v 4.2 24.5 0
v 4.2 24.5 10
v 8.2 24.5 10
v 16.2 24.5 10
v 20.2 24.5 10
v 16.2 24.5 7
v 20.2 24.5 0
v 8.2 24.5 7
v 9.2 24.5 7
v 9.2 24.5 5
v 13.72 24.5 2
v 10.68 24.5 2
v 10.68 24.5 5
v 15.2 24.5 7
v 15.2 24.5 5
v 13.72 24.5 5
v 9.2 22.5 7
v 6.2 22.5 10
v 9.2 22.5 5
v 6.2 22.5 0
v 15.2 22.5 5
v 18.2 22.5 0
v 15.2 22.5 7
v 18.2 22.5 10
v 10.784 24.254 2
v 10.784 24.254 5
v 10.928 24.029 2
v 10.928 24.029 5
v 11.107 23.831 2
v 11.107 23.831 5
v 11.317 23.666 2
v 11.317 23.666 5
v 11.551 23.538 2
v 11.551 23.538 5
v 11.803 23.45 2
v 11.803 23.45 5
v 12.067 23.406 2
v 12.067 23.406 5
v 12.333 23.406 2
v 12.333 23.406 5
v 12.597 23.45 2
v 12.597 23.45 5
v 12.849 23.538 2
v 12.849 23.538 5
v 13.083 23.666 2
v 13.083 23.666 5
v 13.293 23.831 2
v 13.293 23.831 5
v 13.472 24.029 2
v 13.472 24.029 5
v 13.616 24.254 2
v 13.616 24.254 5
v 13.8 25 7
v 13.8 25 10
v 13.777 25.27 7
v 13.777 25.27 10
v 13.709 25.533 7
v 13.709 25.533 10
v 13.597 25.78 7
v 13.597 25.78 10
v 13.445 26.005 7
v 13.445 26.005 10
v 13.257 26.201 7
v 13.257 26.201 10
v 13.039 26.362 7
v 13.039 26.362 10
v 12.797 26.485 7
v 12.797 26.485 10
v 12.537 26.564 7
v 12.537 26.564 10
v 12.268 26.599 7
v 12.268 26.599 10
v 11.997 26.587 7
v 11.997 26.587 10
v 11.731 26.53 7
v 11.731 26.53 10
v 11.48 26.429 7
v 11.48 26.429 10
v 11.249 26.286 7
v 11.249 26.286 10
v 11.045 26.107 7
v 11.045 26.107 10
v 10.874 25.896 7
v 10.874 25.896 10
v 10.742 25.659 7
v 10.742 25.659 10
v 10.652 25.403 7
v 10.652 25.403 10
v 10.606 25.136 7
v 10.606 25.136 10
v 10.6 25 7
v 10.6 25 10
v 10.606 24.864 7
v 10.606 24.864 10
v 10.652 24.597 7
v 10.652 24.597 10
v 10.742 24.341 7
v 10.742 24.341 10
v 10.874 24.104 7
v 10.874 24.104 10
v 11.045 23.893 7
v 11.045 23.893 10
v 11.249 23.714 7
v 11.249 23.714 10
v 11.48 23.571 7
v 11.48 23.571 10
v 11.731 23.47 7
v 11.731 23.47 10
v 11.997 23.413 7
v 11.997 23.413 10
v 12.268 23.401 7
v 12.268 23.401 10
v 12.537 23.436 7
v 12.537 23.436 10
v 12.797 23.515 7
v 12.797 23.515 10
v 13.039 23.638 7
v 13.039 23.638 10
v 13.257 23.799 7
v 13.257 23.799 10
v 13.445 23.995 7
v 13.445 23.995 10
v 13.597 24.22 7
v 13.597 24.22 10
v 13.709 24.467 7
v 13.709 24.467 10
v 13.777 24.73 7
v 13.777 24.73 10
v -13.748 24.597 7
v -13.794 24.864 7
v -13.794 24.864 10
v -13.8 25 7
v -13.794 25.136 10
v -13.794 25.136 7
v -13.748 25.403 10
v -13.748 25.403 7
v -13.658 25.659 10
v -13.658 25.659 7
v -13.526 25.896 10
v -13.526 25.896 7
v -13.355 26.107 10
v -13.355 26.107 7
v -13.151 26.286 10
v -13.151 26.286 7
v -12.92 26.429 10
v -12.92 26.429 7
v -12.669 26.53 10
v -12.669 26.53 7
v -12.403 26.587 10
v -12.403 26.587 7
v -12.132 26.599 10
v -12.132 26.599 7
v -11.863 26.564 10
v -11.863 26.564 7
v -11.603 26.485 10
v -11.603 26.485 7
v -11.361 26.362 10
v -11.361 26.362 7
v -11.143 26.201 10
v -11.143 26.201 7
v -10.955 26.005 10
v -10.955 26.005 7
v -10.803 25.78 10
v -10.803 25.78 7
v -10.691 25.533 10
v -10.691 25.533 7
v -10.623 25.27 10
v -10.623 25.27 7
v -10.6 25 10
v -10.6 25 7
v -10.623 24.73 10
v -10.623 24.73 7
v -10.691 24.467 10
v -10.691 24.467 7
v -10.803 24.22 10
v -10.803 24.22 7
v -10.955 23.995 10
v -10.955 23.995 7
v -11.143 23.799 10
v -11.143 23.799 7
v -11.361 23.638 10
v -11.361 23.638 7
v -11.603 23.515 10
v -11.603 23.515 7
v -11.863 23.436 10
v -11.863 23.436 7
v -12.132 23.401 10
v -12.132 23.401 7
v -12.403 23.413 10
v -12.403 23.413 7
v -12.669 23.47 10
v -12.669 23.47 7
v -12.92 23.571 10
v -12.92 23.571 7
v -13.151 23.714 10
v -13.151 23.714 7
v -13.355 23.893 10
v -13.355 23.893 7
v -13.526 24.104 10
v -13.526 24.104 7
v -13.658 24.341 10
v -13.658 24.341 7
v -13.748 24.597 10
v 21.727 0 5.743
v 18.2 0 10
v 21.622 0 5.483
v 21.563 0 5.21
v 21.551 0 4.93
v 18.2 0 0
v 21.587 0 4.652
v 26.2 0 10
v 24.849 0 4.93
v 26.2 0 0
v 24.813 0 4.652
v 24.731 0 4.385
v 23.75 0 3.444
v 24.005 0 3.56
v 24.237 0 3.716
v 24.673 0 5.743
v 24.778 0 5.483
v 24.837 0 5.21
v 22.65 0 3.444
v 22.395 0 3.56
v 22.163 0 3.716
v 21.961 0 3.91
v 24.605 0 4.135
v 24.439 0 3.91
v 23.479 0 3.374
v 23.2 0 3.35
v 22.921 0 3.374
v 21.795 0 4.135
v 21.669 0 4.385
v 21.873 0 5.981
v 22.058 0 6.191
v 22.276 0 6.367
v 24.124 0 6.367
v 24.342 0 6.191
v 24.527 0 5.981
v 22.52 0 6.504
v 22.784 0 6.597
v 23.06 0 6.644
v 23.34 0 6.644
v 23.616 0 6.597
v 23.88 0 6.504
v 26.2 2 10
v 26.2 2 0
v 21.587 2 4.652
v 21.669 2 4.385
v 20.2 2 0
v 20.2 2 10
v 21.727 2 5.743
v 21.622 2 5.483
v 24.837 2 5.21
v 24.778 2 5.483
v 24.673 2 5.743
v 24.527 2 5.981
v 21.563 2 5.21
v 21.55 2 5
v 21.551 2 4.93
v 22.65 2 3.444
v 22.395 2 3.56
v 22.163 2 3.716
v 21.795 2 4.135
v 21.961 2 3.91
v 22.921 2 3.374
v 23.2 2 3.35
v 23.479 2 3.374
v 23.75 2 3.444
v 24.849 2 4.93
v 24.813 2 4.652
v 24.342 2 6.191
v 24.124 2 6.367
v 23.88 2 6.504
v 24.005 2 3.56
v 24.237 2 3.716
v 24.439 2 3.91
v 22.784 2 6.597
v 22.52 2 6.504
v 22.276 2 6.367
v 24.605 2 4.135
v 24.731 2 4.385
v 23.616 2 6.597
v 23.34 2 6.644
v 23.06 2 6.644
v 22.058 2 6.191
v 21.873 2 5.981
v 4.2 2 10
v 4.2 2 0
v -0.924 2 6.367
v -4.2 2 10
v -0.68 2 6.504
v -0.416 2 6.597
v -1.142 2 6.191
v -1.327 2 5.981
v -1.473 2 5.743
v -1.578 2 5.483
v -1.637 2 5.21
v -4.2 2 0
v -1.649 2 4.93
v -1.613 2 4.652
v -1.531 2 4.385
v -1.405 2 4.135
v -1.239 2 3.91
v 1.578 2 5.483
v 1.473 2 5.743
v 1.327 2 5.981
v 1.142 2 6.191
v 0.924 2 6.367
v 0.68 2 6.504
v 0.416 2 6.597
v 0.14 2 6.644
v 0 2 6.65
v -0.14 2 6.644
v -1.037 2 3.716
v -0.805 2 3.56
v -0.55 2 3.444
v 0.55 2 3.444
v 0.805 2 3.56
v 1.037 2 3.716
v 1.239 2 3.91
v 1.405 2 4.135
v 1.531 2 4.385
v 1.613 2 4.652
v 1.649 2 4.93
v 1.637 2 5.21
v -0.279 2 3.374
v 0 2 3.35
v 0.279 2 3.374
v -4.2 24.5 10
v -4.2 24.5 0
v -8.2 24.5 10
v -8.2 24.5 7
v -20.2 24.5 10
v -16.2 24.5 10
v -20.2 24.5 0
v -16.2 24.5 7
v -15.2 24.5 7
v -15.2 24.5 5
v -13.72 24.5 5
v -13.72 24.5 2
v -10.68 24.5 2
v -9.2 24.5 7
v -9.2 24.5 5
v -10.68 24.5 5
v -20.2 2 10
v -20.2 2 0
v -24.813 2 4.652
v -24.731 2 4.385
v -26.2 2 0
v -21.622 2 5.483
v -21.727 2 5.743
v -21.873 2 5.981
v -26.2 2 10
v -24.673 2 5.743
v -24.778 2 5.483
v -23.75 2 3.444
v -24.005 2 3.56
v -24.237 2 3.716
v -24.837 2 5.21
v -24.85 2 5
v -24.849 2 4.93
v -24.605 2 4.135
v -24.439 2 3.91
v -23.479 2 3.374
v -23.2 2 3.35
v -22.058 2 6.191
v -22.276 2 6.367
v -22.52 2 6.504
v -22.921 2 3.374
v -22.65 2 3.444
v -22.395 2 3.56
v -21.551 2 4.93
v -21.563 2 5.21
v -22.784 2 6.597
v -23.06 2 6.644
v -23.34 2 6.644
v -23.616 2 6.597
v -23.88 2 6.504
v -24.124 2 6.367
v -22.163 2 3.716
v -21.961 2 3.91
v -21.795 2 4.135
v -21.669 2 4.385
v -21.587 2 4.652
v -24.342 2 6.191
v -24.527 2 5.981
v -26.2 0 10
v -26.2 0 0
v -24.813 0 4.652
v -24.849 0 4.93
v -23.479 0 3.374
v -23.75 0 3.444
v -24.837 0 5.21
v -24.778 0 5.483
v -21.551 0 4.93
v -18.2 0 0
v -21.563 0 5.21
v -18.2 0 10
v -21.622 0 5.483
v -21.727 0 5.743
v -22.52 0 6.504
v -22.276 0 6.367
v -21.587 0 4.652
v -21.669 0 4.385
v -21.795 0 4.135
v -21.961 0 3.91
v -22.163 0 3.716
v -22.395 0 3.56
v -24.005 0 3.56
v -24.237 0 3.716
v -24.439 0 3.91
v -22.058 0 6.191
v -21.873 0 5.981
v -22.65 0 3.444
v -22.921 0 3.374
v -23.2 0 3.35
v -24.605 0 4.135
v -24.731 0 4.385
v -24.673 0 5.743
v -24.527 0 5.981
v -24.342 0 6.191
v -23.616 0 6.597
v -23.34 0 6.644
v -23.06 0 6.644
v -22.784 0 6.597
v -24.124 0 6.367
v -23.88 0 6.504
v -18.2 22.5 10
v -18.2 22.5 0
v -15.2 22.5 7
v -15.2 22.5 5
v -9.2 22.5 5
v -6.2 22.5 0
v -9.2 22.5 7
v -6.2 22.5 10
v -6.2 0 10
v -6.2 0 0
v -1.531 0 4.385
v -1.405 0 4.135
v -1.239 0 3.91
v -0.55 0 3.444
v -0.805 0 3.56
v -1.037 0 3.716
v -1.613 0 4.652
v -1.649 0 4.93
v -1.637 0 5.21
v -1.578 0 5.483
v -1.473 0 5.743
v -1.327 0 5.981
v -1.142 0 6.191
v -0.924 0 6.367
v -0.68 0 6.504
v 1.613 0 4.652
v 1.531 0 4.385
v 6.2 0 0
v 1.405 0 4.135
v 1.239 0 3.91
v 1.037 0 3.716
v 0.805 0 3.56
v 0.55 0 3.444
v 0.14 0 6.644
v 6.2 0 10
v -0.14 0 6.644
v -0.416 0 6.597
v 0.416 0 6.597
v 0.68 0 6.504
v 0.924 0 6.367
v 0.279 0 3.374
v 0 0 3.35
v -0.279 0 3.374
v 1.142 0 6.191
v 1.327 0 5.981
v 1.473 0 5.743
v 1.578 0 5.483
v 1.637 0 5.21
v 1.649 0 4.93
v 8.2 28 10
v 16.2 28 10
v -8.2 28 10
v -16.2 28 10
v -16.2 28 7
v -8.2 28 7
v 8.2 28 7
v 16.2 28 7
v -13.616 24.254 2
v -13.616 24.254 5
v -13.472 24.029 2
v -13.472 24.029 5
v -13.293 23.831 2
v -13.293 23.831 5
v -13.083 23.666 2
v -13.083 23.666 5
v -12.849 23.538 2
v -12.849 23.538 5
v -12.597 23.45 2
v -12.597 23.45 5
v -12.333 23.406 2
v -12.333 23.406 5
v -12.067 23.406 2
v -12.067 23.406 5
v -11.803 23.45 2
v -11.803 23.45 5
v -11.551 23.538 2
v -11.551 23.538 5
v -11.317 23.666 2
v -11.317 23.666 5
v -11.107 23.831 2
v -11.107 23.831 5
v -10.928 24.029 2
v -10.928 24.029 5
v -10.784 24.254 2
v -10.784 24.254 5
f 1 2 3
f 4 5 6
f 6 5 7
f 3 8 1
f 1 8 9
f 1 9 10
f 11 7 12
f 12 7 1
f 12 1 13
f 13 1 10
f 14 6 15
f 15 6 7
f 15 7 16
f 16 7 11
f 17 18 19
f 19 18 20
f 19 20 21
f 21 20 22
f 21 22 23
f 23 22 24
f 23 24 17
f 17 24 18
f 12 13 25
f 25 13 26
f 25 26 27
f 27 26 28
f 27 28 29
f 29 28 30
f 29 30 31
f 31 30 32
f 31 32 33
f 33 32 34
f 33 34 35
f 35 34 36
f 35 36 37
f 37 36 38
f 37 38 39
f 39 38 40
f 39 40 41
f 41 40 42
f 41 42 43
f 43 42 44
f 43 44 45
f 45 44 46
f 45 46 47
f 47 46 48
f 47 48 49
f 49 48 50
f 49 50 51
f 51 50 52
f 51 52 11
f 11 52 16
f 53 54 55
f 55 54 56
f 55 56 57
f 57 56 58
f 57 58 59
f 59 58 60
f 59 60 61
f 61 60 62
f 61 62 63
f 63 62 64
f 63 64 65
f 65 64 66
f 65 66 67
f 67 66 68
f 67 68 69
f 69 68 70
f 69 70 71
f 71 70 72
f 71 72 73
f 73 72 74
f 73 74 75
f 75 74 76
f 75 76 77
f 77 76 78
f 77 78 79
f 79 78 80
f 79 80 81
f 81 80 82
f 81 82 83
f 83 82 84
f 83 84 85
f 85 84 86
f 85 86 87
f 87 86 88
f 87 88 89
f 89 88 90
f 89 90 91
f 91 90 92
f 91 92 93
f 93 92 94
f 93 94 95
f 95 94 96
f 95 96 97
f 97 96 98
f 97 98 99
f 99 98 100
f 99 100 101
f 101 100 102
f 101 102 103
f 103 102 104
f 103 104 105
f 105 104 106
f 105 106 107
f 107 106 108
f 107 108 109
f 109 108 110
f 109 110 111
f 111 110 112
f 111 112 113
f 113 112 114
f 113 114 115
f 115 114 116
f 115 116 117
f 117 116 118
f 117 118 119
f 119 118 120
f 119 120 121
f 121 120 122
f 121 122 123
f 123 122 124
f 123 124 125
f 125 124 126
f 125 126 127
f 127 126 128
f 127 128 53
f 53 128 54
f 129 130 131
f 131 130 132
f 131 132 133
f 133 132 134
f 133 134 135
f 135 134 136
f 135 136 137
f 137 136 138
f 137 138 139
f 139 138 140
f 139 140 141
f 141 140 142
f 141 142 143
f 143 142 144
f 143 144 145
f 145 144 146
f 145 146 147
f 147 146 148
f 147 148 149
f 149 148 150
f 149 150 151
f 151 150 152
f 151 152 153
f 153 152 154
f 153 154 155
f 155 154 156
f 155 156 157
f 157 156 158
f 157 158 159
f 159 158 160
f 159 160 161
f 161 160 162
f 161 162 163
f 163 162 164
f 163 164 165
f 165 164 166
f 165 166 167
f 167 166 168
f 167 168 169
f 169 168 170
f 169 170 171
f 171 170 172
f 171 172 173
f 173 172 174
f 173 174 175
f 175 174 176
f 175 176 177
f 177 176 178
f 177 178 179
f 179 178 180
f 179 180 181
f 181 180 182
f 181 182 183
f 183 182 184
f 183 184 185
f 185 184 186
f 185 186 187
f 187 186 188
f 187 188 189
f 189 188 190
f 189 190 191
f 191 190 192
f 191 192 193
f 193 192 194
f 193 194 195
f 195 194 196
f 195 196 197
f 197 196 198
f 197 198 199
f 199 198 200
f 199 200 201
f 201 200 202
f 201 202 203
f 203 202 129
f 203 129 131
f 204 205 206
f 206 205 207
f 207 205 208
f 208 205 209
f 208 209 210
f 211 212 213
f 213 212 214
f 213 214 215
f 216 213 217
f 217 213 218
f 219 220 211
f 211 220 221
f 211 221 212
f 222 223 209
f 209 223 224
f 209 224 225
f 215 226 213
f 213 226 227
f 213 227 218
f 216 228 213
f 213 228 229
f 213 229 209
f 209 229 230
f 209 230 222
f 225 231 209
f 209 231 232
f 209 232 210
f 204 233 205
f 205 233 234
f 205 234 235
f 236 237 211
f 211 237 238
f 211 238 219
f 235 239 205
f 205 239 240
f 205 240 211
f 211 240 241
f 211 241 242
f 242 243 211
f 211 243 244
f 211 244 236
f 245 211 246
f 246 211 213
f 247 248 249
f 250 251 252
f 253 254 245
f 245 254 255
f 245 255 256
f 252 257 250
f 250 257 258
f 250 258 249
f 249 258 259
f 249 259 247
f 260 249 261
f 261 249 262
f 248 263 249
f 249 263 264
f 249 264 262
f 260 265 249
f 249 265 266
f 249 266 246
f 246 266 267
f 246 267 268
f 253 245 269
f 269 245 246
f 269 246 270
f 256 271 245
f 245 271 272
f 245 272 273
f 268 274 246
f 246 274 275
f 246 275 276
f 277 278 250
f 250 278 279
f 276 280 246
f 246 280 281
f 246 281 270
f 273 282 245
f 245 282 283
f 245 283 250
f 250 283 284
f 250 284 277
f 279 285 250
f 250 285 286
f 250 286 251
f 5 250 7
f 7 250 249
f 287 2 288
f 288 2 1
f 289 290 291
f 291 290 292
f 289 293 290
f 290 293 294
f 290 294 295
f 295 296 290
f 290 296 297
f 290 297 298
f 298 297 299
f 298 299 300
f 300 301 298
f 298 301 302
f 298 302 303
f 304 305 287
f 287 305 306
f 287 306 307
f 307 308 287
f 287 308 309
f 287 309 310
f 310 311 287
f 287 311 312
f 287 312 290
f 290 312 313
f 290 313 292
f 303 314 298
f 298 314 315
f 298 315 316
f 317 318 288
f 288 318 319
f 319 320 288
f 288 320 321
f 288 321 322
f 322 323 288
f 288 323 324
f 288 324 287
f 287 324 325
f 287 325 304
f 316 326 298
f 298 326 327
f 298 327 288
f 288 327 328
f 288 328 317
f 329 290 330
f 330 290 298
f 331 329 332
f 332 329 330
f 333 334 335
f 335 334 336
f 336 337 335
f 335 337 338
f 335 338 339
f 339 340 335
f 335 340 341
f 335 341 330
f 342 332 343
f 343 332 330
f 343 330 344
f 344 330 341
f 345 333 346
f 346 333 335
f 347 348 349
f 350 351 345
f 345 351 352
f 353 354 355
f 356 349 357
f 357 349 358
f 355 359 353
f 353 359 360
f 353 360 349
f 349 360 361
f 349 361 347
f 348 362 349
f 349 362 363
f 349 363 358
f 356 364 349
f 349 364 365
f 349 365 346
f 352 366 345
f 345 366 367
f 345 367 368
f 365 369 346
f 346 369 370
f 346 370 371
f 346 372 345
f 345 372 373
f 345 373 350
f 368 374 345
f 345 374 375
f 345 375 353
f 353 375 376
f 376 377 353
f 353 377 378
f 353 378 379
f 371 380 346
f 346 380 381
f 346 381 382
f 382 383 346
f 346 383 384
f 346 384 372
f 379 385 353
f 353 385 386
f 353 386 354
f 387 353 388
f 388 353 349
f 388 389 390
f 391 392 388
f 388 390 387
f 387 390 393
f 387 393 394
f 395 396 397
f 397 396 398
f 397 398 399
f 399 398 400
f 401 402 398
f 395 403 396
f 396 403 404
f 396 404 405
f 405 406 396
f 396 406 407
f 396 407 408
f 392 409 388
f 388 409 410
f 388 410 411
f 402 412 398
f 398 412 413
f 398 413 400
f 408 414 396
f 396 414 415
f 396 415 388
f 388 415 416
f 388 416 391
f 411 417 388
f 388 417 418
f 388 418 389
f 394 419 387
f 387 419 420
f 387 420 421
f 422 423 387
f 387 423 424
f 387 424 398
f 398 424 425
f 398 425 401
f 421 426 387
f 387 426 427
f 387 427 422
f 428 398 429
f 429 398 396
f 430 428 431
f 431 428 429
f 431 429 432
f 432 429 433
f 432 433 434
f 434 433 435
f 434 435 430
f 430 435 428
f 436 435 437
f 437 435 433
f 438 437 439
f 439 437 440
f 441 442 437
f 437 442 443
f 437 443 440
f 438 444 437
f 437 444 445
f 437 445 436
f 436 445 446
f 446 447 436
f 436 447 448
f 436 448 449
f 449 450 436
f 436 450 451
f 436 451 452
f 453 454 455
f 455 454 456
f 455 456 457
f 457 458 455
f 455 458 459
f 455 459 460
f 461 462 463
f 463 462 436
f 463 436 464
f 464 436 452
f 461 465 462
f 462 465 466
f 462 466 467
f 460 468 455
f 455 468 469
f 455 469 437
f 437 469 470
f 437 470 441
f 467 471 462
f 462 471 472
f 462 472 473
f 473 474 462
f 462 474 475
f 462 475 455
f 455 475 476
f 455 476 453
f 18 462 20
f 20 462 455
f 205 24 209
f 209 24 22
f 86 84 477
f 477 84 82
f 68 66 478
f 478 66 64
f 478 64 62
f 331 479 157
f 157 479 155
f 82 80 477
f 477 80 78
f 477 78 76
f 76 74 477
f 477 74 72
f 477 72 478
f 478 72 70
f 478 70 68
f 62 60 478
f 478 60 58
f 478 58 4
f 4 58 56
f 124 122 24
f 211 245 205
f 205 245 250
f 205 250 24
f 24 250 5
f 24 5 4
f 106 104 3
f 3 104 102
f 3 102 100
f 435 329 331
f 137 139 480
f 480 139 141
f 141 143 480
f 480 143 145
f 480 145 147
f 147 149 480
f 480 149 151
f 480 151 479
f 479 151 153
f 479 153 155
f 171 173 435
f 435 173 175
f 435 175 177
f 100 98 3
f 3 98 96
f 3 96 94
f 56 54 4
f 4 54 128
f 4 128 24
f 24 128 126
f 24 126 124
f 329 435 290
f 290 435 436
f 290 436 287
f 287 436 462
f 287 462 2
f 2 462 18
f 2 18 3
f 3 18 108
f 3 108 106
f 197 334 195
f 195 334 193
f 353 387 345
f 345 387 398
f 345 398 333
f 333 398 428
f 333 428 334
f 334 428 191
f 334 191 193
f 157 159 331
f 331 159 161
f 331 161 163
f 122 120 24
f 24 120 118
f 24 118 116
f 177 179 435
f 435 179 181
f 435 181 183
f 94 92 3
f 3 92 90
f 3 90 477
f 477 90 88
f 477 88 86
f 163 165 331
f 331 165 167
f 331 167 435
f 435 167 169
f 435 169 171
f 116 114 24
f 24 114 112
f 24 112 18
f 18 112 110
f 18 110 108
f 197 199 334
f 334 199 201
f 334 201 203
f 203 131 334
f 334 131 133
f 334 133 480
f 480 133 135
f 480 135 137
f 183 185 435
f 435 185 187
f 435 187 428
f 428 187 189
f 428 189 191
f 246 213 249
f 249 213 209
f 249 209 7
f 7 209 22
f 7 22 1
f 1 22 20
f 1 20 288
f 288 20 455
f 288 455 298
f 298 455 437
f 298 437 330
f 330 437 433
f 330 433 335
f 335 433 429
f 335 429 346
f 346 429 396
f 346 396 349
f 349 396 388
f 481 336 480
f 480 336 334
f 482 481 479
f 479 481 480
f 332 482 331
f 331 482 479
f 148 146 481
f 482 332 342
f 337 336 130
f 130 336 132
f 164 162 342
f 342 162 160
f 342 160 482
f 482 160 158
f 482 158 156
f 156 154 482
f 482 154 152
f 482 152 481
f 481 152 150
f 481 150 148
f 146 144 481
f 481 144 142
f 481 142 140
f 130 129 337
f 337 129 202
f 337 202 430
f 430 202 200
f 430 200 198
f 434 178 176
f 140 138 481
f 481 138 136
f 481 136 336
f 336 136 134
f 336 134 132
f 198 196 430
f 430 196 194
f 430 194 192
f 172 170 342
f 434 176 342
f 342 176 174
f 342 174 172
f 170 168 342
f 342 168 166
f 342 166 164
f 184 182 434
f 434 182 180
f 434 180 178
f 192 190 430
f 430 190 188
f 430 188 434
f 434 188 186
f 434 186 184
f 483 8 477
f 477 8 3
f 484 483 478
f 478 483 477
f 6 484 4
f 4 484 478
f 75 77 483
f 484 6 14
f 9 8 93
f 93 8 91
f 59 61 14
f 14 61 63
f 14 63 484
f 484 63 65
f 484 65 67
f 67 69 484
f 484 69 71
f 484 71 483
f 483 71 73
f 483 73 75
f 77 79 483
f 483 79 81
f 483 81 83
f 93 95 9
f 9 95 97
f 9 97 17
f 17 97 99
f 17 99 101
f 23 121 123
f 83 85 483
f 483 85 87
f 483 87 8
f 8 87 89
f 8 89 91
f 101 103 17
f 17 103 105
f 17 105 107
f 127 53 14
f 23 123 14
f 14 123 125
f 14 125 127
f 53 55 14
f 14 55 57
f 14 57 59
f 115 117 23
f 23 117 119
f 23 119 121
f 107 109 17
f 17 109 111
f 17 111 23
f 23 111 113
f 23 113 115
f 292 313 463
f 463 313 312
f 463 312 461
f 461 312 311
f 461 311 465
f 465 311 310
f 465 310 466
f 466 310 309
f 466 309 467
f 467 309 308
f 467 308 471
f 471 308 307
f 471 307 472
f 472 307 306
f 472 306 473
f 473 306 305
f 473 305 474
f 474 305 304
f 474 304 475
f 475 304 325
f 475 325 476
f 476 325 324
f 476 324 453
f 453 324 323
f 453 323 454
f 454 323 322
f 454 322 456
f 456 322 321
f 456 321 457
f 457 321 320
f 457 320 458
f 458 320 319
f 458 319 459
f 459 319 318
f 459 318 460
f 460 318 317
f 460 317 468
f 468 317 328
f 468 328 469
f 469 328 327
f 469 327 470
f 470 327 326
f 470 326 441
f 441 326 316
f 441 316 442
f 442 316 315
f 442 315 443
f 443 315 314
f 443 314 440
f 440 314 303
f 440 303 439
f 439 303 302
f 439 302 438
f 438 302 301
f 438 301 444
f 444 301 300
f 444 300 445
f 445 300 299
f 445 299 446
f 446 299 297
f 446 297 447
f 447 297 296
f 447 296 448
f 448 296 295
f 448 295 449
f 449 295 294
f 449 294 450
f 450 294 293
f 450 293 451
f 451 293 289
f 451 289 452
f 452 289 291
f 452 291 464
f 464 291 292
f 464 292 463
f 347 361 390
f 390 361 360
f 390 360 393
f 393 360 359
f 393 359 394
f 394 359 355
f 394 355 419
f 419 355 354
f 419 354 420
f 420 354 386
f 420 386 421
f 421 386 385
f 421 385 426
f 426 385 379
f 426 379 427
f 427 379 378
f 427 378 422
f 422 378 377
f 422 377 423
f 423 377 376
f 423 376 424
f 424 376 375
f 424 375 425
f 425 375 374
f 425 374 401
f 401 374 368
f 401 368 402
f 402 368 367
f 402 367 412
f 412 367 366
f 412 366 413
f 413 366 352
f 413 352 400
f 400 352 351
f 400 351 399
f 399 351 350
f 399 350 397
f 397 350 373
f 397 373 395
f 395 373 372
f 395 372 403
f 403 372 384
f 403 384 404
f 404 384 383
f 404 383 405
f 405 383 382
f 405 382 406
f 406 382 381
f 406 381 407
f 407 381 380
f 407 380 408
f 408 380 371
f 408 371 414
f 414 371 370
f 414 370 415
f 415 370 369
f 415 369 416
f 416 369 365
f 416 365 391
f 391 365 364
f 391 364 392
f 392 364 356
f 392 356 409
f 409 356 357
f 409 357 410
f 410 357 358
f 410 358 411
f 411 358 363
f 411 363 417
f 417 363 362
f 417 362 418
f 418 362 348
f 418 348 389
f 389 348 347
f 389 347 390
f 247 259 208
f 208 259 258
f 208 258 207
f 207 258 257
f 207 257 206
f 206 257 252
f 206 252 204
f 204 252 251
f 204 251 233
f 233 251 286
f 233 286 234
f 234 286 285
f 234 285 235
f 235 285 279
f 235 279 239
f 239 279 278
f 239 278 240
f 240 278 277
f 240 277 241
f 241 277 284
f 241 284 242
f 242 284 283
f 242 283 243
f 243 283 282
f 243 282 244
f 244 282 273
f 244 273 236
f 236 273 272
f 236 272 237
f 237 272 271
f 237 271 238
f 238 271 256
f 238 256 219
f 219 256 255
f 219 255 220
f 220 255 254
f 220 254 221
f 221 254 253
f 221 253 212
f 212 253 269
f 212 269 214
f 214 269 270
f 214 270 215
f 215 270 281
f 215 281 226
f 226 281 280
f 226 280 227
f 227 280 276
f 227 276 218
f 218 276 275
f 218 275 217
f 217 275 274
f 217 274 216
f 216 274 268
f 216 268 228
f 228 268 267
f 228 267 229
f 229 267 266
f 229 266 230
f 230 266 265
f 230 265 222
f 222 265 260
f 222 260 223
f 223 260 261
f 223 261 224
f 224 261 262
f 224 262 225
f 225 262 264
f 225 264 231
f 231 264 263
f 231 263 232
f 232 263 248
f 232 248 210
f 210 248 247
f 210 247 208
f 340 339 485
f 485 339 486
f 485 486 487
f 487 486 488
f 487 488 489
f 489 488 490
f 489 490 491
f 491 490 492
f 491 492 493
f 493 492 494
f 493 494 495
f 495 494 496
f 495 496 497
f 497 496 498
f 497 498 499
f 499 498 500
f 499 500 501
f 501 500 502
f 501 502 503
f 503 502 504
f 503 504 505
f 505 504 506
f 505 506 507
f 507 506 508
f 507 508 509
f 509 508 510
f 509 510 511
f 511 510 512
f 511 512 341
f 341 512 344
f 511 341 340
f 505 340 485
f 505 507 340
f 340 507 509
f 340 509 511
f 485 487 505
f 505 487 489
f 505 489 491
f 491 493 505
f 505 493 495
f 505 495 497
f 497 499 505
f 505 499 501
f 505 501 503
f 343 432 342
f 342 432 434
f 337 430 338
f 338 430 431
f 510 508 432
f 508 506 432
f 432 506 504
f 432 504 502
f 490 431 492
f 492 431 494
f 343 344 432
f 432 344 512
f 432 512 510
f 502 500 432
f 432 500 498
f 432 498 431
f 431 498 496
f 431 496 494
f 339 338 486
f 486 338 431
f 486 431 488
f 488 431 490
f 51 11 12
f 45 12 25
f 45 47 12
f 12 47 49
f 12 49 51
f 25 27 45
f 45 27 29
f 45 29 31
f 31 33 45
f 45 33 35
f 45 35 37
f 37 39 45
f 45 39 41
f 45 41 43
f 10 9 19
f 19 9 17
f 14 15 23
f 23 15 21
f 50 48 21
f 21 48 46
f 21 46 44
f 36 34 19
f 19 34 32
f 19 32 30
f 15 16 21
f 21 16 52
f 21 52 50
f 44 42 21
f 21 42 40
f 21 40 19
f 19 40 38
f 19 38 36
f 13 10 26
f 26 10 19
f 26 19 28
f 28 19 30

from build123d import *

# Parameters (mm, degrees)
EXTRUIR_L_MINA1_DEPTH   = 10
CROQUIS2_W              = 8
CROQUIS2_H              = 3.5
SALIENTE_EXTRUIR1_DEPTH = 3
CROQUIS3_R              = 1.65
CORTAR_EXTRUIR1_DEPTH   = 40.628777422
CROQUIS4_R              = 1.6
CORTAR_EXTRUIR2_DEPTH   = 8
CROQUIS6_W              = 6
CROQUIS6_H              = 2
CORTAR_EXTRUIR3_DEPTH   = 38.238286749


with BuildPart() as part:
    # Croquis1 → Extruir-Lámina1 (new body)
    with BuildSketch(Plane.XY):
        Polygon((26.2, 0), (18.2, 0), (18.2, 22.5), (6.2, 22.5), (6.2, 0), (-6.2, 0), (-6.2, 22.5), (-18.2, 22.5), (-18.2, 0), (-26.2, 0), (-26.2, 2), (-20.2, 2), (-20.2, 24.5), (-4.2, 24.5), (-4.2, 2), (4.2, 2), (4.2, 24.5), (20.2, 24.5), (20.2, 2), (26.2, 2), align=None)
    extrude(amount=EXTRUIR_L_MINA1_DEPTH)

    # Croquis2 → Saliente-Extruir1 (add)
    with BuildSketch(Plane.XY.offset(10)):
        with Locations((-12.2, 26.25)):
            Rectangle(CROQUIS2_W, CROQUIS2_H)
    saliente_extruir1 = extrude(amount=-SALIENTE_EXTRUIR1_DEPTH)

    # Simetría1: Saliente-Extruir1 across plane
    add(saliente_extruir1.mirror(Plane(origin=(0, 0, 0), x_dir=(0, 0, 1), z_dir=(1, 0, 0))))

    # Croquis3 → Cortar-Extruir1 (cut, through all)
    with BuildSketch(Plane(origin=(0, 0, 0), x_dir=(-1, 0, 0), z_dir=(0, -1, 0))):
        with Locations(Location((0, -5, 0), (0, 0, 90))):
            Circle(CROQUIS3_R)
        with Locations(Location((23.2, -5, 0), (0, 0, 90))):
            Circle(CROQUIS3_R)
        with Locations(Location((-23.2, -5, 0), (0, 0, 90))):
            Circle(CROQUIS3_R)
    extrude(amount=-CORTAR_EXTRUIR1_DEPTH, mode=Mode.SUBTRACT)

    # Croquis4 → Cortar-Extruir2 (cut)
    with BuildSketch(Plane.XY.offset(10)):
        with Locations((-12.2, 25)):
            Circle(CROQUIS4_R)
    cortar_extruir2 = extrude(amount=-CORTAR_EXTRUIR2_DEPTH, mode=Mode.SUBTRACT)

    # Croquis6 → Cortar-Extruir3 (cut, through all)
    with BuildSketch(Plane(origin=(0, 24.5, 0), x_dir=(1, 0, 0), z_dir=(0, 1, 0))):
        with Locations((-12.2, -6)):
            Rectangle(CROQUIS6_W, CROQUIS6_H)
    cortar_extruir3 = extrude(amount=-CORTAR_EXTRUIR3_DEPTH, mode=Mode.SUBTRACT)

    # Simetría2: Cortar-Extruir2, Cortar-Extruir3 across plane
    add(cortar_extruir2.mirror(Plane(origin=(0, 0, 0), x_dir=(0, 0, 1), z_dir=(1, 0, 0))), mode=Mode.SUBTRACT)
    add(cortar_extruir3.mirror(Plane(origin=(0, 0, 0), x_dir=(0, 0, 1), z_dir=(1, 0, 0))), mode=Mode.SUBTRACT)


solid = part.part
